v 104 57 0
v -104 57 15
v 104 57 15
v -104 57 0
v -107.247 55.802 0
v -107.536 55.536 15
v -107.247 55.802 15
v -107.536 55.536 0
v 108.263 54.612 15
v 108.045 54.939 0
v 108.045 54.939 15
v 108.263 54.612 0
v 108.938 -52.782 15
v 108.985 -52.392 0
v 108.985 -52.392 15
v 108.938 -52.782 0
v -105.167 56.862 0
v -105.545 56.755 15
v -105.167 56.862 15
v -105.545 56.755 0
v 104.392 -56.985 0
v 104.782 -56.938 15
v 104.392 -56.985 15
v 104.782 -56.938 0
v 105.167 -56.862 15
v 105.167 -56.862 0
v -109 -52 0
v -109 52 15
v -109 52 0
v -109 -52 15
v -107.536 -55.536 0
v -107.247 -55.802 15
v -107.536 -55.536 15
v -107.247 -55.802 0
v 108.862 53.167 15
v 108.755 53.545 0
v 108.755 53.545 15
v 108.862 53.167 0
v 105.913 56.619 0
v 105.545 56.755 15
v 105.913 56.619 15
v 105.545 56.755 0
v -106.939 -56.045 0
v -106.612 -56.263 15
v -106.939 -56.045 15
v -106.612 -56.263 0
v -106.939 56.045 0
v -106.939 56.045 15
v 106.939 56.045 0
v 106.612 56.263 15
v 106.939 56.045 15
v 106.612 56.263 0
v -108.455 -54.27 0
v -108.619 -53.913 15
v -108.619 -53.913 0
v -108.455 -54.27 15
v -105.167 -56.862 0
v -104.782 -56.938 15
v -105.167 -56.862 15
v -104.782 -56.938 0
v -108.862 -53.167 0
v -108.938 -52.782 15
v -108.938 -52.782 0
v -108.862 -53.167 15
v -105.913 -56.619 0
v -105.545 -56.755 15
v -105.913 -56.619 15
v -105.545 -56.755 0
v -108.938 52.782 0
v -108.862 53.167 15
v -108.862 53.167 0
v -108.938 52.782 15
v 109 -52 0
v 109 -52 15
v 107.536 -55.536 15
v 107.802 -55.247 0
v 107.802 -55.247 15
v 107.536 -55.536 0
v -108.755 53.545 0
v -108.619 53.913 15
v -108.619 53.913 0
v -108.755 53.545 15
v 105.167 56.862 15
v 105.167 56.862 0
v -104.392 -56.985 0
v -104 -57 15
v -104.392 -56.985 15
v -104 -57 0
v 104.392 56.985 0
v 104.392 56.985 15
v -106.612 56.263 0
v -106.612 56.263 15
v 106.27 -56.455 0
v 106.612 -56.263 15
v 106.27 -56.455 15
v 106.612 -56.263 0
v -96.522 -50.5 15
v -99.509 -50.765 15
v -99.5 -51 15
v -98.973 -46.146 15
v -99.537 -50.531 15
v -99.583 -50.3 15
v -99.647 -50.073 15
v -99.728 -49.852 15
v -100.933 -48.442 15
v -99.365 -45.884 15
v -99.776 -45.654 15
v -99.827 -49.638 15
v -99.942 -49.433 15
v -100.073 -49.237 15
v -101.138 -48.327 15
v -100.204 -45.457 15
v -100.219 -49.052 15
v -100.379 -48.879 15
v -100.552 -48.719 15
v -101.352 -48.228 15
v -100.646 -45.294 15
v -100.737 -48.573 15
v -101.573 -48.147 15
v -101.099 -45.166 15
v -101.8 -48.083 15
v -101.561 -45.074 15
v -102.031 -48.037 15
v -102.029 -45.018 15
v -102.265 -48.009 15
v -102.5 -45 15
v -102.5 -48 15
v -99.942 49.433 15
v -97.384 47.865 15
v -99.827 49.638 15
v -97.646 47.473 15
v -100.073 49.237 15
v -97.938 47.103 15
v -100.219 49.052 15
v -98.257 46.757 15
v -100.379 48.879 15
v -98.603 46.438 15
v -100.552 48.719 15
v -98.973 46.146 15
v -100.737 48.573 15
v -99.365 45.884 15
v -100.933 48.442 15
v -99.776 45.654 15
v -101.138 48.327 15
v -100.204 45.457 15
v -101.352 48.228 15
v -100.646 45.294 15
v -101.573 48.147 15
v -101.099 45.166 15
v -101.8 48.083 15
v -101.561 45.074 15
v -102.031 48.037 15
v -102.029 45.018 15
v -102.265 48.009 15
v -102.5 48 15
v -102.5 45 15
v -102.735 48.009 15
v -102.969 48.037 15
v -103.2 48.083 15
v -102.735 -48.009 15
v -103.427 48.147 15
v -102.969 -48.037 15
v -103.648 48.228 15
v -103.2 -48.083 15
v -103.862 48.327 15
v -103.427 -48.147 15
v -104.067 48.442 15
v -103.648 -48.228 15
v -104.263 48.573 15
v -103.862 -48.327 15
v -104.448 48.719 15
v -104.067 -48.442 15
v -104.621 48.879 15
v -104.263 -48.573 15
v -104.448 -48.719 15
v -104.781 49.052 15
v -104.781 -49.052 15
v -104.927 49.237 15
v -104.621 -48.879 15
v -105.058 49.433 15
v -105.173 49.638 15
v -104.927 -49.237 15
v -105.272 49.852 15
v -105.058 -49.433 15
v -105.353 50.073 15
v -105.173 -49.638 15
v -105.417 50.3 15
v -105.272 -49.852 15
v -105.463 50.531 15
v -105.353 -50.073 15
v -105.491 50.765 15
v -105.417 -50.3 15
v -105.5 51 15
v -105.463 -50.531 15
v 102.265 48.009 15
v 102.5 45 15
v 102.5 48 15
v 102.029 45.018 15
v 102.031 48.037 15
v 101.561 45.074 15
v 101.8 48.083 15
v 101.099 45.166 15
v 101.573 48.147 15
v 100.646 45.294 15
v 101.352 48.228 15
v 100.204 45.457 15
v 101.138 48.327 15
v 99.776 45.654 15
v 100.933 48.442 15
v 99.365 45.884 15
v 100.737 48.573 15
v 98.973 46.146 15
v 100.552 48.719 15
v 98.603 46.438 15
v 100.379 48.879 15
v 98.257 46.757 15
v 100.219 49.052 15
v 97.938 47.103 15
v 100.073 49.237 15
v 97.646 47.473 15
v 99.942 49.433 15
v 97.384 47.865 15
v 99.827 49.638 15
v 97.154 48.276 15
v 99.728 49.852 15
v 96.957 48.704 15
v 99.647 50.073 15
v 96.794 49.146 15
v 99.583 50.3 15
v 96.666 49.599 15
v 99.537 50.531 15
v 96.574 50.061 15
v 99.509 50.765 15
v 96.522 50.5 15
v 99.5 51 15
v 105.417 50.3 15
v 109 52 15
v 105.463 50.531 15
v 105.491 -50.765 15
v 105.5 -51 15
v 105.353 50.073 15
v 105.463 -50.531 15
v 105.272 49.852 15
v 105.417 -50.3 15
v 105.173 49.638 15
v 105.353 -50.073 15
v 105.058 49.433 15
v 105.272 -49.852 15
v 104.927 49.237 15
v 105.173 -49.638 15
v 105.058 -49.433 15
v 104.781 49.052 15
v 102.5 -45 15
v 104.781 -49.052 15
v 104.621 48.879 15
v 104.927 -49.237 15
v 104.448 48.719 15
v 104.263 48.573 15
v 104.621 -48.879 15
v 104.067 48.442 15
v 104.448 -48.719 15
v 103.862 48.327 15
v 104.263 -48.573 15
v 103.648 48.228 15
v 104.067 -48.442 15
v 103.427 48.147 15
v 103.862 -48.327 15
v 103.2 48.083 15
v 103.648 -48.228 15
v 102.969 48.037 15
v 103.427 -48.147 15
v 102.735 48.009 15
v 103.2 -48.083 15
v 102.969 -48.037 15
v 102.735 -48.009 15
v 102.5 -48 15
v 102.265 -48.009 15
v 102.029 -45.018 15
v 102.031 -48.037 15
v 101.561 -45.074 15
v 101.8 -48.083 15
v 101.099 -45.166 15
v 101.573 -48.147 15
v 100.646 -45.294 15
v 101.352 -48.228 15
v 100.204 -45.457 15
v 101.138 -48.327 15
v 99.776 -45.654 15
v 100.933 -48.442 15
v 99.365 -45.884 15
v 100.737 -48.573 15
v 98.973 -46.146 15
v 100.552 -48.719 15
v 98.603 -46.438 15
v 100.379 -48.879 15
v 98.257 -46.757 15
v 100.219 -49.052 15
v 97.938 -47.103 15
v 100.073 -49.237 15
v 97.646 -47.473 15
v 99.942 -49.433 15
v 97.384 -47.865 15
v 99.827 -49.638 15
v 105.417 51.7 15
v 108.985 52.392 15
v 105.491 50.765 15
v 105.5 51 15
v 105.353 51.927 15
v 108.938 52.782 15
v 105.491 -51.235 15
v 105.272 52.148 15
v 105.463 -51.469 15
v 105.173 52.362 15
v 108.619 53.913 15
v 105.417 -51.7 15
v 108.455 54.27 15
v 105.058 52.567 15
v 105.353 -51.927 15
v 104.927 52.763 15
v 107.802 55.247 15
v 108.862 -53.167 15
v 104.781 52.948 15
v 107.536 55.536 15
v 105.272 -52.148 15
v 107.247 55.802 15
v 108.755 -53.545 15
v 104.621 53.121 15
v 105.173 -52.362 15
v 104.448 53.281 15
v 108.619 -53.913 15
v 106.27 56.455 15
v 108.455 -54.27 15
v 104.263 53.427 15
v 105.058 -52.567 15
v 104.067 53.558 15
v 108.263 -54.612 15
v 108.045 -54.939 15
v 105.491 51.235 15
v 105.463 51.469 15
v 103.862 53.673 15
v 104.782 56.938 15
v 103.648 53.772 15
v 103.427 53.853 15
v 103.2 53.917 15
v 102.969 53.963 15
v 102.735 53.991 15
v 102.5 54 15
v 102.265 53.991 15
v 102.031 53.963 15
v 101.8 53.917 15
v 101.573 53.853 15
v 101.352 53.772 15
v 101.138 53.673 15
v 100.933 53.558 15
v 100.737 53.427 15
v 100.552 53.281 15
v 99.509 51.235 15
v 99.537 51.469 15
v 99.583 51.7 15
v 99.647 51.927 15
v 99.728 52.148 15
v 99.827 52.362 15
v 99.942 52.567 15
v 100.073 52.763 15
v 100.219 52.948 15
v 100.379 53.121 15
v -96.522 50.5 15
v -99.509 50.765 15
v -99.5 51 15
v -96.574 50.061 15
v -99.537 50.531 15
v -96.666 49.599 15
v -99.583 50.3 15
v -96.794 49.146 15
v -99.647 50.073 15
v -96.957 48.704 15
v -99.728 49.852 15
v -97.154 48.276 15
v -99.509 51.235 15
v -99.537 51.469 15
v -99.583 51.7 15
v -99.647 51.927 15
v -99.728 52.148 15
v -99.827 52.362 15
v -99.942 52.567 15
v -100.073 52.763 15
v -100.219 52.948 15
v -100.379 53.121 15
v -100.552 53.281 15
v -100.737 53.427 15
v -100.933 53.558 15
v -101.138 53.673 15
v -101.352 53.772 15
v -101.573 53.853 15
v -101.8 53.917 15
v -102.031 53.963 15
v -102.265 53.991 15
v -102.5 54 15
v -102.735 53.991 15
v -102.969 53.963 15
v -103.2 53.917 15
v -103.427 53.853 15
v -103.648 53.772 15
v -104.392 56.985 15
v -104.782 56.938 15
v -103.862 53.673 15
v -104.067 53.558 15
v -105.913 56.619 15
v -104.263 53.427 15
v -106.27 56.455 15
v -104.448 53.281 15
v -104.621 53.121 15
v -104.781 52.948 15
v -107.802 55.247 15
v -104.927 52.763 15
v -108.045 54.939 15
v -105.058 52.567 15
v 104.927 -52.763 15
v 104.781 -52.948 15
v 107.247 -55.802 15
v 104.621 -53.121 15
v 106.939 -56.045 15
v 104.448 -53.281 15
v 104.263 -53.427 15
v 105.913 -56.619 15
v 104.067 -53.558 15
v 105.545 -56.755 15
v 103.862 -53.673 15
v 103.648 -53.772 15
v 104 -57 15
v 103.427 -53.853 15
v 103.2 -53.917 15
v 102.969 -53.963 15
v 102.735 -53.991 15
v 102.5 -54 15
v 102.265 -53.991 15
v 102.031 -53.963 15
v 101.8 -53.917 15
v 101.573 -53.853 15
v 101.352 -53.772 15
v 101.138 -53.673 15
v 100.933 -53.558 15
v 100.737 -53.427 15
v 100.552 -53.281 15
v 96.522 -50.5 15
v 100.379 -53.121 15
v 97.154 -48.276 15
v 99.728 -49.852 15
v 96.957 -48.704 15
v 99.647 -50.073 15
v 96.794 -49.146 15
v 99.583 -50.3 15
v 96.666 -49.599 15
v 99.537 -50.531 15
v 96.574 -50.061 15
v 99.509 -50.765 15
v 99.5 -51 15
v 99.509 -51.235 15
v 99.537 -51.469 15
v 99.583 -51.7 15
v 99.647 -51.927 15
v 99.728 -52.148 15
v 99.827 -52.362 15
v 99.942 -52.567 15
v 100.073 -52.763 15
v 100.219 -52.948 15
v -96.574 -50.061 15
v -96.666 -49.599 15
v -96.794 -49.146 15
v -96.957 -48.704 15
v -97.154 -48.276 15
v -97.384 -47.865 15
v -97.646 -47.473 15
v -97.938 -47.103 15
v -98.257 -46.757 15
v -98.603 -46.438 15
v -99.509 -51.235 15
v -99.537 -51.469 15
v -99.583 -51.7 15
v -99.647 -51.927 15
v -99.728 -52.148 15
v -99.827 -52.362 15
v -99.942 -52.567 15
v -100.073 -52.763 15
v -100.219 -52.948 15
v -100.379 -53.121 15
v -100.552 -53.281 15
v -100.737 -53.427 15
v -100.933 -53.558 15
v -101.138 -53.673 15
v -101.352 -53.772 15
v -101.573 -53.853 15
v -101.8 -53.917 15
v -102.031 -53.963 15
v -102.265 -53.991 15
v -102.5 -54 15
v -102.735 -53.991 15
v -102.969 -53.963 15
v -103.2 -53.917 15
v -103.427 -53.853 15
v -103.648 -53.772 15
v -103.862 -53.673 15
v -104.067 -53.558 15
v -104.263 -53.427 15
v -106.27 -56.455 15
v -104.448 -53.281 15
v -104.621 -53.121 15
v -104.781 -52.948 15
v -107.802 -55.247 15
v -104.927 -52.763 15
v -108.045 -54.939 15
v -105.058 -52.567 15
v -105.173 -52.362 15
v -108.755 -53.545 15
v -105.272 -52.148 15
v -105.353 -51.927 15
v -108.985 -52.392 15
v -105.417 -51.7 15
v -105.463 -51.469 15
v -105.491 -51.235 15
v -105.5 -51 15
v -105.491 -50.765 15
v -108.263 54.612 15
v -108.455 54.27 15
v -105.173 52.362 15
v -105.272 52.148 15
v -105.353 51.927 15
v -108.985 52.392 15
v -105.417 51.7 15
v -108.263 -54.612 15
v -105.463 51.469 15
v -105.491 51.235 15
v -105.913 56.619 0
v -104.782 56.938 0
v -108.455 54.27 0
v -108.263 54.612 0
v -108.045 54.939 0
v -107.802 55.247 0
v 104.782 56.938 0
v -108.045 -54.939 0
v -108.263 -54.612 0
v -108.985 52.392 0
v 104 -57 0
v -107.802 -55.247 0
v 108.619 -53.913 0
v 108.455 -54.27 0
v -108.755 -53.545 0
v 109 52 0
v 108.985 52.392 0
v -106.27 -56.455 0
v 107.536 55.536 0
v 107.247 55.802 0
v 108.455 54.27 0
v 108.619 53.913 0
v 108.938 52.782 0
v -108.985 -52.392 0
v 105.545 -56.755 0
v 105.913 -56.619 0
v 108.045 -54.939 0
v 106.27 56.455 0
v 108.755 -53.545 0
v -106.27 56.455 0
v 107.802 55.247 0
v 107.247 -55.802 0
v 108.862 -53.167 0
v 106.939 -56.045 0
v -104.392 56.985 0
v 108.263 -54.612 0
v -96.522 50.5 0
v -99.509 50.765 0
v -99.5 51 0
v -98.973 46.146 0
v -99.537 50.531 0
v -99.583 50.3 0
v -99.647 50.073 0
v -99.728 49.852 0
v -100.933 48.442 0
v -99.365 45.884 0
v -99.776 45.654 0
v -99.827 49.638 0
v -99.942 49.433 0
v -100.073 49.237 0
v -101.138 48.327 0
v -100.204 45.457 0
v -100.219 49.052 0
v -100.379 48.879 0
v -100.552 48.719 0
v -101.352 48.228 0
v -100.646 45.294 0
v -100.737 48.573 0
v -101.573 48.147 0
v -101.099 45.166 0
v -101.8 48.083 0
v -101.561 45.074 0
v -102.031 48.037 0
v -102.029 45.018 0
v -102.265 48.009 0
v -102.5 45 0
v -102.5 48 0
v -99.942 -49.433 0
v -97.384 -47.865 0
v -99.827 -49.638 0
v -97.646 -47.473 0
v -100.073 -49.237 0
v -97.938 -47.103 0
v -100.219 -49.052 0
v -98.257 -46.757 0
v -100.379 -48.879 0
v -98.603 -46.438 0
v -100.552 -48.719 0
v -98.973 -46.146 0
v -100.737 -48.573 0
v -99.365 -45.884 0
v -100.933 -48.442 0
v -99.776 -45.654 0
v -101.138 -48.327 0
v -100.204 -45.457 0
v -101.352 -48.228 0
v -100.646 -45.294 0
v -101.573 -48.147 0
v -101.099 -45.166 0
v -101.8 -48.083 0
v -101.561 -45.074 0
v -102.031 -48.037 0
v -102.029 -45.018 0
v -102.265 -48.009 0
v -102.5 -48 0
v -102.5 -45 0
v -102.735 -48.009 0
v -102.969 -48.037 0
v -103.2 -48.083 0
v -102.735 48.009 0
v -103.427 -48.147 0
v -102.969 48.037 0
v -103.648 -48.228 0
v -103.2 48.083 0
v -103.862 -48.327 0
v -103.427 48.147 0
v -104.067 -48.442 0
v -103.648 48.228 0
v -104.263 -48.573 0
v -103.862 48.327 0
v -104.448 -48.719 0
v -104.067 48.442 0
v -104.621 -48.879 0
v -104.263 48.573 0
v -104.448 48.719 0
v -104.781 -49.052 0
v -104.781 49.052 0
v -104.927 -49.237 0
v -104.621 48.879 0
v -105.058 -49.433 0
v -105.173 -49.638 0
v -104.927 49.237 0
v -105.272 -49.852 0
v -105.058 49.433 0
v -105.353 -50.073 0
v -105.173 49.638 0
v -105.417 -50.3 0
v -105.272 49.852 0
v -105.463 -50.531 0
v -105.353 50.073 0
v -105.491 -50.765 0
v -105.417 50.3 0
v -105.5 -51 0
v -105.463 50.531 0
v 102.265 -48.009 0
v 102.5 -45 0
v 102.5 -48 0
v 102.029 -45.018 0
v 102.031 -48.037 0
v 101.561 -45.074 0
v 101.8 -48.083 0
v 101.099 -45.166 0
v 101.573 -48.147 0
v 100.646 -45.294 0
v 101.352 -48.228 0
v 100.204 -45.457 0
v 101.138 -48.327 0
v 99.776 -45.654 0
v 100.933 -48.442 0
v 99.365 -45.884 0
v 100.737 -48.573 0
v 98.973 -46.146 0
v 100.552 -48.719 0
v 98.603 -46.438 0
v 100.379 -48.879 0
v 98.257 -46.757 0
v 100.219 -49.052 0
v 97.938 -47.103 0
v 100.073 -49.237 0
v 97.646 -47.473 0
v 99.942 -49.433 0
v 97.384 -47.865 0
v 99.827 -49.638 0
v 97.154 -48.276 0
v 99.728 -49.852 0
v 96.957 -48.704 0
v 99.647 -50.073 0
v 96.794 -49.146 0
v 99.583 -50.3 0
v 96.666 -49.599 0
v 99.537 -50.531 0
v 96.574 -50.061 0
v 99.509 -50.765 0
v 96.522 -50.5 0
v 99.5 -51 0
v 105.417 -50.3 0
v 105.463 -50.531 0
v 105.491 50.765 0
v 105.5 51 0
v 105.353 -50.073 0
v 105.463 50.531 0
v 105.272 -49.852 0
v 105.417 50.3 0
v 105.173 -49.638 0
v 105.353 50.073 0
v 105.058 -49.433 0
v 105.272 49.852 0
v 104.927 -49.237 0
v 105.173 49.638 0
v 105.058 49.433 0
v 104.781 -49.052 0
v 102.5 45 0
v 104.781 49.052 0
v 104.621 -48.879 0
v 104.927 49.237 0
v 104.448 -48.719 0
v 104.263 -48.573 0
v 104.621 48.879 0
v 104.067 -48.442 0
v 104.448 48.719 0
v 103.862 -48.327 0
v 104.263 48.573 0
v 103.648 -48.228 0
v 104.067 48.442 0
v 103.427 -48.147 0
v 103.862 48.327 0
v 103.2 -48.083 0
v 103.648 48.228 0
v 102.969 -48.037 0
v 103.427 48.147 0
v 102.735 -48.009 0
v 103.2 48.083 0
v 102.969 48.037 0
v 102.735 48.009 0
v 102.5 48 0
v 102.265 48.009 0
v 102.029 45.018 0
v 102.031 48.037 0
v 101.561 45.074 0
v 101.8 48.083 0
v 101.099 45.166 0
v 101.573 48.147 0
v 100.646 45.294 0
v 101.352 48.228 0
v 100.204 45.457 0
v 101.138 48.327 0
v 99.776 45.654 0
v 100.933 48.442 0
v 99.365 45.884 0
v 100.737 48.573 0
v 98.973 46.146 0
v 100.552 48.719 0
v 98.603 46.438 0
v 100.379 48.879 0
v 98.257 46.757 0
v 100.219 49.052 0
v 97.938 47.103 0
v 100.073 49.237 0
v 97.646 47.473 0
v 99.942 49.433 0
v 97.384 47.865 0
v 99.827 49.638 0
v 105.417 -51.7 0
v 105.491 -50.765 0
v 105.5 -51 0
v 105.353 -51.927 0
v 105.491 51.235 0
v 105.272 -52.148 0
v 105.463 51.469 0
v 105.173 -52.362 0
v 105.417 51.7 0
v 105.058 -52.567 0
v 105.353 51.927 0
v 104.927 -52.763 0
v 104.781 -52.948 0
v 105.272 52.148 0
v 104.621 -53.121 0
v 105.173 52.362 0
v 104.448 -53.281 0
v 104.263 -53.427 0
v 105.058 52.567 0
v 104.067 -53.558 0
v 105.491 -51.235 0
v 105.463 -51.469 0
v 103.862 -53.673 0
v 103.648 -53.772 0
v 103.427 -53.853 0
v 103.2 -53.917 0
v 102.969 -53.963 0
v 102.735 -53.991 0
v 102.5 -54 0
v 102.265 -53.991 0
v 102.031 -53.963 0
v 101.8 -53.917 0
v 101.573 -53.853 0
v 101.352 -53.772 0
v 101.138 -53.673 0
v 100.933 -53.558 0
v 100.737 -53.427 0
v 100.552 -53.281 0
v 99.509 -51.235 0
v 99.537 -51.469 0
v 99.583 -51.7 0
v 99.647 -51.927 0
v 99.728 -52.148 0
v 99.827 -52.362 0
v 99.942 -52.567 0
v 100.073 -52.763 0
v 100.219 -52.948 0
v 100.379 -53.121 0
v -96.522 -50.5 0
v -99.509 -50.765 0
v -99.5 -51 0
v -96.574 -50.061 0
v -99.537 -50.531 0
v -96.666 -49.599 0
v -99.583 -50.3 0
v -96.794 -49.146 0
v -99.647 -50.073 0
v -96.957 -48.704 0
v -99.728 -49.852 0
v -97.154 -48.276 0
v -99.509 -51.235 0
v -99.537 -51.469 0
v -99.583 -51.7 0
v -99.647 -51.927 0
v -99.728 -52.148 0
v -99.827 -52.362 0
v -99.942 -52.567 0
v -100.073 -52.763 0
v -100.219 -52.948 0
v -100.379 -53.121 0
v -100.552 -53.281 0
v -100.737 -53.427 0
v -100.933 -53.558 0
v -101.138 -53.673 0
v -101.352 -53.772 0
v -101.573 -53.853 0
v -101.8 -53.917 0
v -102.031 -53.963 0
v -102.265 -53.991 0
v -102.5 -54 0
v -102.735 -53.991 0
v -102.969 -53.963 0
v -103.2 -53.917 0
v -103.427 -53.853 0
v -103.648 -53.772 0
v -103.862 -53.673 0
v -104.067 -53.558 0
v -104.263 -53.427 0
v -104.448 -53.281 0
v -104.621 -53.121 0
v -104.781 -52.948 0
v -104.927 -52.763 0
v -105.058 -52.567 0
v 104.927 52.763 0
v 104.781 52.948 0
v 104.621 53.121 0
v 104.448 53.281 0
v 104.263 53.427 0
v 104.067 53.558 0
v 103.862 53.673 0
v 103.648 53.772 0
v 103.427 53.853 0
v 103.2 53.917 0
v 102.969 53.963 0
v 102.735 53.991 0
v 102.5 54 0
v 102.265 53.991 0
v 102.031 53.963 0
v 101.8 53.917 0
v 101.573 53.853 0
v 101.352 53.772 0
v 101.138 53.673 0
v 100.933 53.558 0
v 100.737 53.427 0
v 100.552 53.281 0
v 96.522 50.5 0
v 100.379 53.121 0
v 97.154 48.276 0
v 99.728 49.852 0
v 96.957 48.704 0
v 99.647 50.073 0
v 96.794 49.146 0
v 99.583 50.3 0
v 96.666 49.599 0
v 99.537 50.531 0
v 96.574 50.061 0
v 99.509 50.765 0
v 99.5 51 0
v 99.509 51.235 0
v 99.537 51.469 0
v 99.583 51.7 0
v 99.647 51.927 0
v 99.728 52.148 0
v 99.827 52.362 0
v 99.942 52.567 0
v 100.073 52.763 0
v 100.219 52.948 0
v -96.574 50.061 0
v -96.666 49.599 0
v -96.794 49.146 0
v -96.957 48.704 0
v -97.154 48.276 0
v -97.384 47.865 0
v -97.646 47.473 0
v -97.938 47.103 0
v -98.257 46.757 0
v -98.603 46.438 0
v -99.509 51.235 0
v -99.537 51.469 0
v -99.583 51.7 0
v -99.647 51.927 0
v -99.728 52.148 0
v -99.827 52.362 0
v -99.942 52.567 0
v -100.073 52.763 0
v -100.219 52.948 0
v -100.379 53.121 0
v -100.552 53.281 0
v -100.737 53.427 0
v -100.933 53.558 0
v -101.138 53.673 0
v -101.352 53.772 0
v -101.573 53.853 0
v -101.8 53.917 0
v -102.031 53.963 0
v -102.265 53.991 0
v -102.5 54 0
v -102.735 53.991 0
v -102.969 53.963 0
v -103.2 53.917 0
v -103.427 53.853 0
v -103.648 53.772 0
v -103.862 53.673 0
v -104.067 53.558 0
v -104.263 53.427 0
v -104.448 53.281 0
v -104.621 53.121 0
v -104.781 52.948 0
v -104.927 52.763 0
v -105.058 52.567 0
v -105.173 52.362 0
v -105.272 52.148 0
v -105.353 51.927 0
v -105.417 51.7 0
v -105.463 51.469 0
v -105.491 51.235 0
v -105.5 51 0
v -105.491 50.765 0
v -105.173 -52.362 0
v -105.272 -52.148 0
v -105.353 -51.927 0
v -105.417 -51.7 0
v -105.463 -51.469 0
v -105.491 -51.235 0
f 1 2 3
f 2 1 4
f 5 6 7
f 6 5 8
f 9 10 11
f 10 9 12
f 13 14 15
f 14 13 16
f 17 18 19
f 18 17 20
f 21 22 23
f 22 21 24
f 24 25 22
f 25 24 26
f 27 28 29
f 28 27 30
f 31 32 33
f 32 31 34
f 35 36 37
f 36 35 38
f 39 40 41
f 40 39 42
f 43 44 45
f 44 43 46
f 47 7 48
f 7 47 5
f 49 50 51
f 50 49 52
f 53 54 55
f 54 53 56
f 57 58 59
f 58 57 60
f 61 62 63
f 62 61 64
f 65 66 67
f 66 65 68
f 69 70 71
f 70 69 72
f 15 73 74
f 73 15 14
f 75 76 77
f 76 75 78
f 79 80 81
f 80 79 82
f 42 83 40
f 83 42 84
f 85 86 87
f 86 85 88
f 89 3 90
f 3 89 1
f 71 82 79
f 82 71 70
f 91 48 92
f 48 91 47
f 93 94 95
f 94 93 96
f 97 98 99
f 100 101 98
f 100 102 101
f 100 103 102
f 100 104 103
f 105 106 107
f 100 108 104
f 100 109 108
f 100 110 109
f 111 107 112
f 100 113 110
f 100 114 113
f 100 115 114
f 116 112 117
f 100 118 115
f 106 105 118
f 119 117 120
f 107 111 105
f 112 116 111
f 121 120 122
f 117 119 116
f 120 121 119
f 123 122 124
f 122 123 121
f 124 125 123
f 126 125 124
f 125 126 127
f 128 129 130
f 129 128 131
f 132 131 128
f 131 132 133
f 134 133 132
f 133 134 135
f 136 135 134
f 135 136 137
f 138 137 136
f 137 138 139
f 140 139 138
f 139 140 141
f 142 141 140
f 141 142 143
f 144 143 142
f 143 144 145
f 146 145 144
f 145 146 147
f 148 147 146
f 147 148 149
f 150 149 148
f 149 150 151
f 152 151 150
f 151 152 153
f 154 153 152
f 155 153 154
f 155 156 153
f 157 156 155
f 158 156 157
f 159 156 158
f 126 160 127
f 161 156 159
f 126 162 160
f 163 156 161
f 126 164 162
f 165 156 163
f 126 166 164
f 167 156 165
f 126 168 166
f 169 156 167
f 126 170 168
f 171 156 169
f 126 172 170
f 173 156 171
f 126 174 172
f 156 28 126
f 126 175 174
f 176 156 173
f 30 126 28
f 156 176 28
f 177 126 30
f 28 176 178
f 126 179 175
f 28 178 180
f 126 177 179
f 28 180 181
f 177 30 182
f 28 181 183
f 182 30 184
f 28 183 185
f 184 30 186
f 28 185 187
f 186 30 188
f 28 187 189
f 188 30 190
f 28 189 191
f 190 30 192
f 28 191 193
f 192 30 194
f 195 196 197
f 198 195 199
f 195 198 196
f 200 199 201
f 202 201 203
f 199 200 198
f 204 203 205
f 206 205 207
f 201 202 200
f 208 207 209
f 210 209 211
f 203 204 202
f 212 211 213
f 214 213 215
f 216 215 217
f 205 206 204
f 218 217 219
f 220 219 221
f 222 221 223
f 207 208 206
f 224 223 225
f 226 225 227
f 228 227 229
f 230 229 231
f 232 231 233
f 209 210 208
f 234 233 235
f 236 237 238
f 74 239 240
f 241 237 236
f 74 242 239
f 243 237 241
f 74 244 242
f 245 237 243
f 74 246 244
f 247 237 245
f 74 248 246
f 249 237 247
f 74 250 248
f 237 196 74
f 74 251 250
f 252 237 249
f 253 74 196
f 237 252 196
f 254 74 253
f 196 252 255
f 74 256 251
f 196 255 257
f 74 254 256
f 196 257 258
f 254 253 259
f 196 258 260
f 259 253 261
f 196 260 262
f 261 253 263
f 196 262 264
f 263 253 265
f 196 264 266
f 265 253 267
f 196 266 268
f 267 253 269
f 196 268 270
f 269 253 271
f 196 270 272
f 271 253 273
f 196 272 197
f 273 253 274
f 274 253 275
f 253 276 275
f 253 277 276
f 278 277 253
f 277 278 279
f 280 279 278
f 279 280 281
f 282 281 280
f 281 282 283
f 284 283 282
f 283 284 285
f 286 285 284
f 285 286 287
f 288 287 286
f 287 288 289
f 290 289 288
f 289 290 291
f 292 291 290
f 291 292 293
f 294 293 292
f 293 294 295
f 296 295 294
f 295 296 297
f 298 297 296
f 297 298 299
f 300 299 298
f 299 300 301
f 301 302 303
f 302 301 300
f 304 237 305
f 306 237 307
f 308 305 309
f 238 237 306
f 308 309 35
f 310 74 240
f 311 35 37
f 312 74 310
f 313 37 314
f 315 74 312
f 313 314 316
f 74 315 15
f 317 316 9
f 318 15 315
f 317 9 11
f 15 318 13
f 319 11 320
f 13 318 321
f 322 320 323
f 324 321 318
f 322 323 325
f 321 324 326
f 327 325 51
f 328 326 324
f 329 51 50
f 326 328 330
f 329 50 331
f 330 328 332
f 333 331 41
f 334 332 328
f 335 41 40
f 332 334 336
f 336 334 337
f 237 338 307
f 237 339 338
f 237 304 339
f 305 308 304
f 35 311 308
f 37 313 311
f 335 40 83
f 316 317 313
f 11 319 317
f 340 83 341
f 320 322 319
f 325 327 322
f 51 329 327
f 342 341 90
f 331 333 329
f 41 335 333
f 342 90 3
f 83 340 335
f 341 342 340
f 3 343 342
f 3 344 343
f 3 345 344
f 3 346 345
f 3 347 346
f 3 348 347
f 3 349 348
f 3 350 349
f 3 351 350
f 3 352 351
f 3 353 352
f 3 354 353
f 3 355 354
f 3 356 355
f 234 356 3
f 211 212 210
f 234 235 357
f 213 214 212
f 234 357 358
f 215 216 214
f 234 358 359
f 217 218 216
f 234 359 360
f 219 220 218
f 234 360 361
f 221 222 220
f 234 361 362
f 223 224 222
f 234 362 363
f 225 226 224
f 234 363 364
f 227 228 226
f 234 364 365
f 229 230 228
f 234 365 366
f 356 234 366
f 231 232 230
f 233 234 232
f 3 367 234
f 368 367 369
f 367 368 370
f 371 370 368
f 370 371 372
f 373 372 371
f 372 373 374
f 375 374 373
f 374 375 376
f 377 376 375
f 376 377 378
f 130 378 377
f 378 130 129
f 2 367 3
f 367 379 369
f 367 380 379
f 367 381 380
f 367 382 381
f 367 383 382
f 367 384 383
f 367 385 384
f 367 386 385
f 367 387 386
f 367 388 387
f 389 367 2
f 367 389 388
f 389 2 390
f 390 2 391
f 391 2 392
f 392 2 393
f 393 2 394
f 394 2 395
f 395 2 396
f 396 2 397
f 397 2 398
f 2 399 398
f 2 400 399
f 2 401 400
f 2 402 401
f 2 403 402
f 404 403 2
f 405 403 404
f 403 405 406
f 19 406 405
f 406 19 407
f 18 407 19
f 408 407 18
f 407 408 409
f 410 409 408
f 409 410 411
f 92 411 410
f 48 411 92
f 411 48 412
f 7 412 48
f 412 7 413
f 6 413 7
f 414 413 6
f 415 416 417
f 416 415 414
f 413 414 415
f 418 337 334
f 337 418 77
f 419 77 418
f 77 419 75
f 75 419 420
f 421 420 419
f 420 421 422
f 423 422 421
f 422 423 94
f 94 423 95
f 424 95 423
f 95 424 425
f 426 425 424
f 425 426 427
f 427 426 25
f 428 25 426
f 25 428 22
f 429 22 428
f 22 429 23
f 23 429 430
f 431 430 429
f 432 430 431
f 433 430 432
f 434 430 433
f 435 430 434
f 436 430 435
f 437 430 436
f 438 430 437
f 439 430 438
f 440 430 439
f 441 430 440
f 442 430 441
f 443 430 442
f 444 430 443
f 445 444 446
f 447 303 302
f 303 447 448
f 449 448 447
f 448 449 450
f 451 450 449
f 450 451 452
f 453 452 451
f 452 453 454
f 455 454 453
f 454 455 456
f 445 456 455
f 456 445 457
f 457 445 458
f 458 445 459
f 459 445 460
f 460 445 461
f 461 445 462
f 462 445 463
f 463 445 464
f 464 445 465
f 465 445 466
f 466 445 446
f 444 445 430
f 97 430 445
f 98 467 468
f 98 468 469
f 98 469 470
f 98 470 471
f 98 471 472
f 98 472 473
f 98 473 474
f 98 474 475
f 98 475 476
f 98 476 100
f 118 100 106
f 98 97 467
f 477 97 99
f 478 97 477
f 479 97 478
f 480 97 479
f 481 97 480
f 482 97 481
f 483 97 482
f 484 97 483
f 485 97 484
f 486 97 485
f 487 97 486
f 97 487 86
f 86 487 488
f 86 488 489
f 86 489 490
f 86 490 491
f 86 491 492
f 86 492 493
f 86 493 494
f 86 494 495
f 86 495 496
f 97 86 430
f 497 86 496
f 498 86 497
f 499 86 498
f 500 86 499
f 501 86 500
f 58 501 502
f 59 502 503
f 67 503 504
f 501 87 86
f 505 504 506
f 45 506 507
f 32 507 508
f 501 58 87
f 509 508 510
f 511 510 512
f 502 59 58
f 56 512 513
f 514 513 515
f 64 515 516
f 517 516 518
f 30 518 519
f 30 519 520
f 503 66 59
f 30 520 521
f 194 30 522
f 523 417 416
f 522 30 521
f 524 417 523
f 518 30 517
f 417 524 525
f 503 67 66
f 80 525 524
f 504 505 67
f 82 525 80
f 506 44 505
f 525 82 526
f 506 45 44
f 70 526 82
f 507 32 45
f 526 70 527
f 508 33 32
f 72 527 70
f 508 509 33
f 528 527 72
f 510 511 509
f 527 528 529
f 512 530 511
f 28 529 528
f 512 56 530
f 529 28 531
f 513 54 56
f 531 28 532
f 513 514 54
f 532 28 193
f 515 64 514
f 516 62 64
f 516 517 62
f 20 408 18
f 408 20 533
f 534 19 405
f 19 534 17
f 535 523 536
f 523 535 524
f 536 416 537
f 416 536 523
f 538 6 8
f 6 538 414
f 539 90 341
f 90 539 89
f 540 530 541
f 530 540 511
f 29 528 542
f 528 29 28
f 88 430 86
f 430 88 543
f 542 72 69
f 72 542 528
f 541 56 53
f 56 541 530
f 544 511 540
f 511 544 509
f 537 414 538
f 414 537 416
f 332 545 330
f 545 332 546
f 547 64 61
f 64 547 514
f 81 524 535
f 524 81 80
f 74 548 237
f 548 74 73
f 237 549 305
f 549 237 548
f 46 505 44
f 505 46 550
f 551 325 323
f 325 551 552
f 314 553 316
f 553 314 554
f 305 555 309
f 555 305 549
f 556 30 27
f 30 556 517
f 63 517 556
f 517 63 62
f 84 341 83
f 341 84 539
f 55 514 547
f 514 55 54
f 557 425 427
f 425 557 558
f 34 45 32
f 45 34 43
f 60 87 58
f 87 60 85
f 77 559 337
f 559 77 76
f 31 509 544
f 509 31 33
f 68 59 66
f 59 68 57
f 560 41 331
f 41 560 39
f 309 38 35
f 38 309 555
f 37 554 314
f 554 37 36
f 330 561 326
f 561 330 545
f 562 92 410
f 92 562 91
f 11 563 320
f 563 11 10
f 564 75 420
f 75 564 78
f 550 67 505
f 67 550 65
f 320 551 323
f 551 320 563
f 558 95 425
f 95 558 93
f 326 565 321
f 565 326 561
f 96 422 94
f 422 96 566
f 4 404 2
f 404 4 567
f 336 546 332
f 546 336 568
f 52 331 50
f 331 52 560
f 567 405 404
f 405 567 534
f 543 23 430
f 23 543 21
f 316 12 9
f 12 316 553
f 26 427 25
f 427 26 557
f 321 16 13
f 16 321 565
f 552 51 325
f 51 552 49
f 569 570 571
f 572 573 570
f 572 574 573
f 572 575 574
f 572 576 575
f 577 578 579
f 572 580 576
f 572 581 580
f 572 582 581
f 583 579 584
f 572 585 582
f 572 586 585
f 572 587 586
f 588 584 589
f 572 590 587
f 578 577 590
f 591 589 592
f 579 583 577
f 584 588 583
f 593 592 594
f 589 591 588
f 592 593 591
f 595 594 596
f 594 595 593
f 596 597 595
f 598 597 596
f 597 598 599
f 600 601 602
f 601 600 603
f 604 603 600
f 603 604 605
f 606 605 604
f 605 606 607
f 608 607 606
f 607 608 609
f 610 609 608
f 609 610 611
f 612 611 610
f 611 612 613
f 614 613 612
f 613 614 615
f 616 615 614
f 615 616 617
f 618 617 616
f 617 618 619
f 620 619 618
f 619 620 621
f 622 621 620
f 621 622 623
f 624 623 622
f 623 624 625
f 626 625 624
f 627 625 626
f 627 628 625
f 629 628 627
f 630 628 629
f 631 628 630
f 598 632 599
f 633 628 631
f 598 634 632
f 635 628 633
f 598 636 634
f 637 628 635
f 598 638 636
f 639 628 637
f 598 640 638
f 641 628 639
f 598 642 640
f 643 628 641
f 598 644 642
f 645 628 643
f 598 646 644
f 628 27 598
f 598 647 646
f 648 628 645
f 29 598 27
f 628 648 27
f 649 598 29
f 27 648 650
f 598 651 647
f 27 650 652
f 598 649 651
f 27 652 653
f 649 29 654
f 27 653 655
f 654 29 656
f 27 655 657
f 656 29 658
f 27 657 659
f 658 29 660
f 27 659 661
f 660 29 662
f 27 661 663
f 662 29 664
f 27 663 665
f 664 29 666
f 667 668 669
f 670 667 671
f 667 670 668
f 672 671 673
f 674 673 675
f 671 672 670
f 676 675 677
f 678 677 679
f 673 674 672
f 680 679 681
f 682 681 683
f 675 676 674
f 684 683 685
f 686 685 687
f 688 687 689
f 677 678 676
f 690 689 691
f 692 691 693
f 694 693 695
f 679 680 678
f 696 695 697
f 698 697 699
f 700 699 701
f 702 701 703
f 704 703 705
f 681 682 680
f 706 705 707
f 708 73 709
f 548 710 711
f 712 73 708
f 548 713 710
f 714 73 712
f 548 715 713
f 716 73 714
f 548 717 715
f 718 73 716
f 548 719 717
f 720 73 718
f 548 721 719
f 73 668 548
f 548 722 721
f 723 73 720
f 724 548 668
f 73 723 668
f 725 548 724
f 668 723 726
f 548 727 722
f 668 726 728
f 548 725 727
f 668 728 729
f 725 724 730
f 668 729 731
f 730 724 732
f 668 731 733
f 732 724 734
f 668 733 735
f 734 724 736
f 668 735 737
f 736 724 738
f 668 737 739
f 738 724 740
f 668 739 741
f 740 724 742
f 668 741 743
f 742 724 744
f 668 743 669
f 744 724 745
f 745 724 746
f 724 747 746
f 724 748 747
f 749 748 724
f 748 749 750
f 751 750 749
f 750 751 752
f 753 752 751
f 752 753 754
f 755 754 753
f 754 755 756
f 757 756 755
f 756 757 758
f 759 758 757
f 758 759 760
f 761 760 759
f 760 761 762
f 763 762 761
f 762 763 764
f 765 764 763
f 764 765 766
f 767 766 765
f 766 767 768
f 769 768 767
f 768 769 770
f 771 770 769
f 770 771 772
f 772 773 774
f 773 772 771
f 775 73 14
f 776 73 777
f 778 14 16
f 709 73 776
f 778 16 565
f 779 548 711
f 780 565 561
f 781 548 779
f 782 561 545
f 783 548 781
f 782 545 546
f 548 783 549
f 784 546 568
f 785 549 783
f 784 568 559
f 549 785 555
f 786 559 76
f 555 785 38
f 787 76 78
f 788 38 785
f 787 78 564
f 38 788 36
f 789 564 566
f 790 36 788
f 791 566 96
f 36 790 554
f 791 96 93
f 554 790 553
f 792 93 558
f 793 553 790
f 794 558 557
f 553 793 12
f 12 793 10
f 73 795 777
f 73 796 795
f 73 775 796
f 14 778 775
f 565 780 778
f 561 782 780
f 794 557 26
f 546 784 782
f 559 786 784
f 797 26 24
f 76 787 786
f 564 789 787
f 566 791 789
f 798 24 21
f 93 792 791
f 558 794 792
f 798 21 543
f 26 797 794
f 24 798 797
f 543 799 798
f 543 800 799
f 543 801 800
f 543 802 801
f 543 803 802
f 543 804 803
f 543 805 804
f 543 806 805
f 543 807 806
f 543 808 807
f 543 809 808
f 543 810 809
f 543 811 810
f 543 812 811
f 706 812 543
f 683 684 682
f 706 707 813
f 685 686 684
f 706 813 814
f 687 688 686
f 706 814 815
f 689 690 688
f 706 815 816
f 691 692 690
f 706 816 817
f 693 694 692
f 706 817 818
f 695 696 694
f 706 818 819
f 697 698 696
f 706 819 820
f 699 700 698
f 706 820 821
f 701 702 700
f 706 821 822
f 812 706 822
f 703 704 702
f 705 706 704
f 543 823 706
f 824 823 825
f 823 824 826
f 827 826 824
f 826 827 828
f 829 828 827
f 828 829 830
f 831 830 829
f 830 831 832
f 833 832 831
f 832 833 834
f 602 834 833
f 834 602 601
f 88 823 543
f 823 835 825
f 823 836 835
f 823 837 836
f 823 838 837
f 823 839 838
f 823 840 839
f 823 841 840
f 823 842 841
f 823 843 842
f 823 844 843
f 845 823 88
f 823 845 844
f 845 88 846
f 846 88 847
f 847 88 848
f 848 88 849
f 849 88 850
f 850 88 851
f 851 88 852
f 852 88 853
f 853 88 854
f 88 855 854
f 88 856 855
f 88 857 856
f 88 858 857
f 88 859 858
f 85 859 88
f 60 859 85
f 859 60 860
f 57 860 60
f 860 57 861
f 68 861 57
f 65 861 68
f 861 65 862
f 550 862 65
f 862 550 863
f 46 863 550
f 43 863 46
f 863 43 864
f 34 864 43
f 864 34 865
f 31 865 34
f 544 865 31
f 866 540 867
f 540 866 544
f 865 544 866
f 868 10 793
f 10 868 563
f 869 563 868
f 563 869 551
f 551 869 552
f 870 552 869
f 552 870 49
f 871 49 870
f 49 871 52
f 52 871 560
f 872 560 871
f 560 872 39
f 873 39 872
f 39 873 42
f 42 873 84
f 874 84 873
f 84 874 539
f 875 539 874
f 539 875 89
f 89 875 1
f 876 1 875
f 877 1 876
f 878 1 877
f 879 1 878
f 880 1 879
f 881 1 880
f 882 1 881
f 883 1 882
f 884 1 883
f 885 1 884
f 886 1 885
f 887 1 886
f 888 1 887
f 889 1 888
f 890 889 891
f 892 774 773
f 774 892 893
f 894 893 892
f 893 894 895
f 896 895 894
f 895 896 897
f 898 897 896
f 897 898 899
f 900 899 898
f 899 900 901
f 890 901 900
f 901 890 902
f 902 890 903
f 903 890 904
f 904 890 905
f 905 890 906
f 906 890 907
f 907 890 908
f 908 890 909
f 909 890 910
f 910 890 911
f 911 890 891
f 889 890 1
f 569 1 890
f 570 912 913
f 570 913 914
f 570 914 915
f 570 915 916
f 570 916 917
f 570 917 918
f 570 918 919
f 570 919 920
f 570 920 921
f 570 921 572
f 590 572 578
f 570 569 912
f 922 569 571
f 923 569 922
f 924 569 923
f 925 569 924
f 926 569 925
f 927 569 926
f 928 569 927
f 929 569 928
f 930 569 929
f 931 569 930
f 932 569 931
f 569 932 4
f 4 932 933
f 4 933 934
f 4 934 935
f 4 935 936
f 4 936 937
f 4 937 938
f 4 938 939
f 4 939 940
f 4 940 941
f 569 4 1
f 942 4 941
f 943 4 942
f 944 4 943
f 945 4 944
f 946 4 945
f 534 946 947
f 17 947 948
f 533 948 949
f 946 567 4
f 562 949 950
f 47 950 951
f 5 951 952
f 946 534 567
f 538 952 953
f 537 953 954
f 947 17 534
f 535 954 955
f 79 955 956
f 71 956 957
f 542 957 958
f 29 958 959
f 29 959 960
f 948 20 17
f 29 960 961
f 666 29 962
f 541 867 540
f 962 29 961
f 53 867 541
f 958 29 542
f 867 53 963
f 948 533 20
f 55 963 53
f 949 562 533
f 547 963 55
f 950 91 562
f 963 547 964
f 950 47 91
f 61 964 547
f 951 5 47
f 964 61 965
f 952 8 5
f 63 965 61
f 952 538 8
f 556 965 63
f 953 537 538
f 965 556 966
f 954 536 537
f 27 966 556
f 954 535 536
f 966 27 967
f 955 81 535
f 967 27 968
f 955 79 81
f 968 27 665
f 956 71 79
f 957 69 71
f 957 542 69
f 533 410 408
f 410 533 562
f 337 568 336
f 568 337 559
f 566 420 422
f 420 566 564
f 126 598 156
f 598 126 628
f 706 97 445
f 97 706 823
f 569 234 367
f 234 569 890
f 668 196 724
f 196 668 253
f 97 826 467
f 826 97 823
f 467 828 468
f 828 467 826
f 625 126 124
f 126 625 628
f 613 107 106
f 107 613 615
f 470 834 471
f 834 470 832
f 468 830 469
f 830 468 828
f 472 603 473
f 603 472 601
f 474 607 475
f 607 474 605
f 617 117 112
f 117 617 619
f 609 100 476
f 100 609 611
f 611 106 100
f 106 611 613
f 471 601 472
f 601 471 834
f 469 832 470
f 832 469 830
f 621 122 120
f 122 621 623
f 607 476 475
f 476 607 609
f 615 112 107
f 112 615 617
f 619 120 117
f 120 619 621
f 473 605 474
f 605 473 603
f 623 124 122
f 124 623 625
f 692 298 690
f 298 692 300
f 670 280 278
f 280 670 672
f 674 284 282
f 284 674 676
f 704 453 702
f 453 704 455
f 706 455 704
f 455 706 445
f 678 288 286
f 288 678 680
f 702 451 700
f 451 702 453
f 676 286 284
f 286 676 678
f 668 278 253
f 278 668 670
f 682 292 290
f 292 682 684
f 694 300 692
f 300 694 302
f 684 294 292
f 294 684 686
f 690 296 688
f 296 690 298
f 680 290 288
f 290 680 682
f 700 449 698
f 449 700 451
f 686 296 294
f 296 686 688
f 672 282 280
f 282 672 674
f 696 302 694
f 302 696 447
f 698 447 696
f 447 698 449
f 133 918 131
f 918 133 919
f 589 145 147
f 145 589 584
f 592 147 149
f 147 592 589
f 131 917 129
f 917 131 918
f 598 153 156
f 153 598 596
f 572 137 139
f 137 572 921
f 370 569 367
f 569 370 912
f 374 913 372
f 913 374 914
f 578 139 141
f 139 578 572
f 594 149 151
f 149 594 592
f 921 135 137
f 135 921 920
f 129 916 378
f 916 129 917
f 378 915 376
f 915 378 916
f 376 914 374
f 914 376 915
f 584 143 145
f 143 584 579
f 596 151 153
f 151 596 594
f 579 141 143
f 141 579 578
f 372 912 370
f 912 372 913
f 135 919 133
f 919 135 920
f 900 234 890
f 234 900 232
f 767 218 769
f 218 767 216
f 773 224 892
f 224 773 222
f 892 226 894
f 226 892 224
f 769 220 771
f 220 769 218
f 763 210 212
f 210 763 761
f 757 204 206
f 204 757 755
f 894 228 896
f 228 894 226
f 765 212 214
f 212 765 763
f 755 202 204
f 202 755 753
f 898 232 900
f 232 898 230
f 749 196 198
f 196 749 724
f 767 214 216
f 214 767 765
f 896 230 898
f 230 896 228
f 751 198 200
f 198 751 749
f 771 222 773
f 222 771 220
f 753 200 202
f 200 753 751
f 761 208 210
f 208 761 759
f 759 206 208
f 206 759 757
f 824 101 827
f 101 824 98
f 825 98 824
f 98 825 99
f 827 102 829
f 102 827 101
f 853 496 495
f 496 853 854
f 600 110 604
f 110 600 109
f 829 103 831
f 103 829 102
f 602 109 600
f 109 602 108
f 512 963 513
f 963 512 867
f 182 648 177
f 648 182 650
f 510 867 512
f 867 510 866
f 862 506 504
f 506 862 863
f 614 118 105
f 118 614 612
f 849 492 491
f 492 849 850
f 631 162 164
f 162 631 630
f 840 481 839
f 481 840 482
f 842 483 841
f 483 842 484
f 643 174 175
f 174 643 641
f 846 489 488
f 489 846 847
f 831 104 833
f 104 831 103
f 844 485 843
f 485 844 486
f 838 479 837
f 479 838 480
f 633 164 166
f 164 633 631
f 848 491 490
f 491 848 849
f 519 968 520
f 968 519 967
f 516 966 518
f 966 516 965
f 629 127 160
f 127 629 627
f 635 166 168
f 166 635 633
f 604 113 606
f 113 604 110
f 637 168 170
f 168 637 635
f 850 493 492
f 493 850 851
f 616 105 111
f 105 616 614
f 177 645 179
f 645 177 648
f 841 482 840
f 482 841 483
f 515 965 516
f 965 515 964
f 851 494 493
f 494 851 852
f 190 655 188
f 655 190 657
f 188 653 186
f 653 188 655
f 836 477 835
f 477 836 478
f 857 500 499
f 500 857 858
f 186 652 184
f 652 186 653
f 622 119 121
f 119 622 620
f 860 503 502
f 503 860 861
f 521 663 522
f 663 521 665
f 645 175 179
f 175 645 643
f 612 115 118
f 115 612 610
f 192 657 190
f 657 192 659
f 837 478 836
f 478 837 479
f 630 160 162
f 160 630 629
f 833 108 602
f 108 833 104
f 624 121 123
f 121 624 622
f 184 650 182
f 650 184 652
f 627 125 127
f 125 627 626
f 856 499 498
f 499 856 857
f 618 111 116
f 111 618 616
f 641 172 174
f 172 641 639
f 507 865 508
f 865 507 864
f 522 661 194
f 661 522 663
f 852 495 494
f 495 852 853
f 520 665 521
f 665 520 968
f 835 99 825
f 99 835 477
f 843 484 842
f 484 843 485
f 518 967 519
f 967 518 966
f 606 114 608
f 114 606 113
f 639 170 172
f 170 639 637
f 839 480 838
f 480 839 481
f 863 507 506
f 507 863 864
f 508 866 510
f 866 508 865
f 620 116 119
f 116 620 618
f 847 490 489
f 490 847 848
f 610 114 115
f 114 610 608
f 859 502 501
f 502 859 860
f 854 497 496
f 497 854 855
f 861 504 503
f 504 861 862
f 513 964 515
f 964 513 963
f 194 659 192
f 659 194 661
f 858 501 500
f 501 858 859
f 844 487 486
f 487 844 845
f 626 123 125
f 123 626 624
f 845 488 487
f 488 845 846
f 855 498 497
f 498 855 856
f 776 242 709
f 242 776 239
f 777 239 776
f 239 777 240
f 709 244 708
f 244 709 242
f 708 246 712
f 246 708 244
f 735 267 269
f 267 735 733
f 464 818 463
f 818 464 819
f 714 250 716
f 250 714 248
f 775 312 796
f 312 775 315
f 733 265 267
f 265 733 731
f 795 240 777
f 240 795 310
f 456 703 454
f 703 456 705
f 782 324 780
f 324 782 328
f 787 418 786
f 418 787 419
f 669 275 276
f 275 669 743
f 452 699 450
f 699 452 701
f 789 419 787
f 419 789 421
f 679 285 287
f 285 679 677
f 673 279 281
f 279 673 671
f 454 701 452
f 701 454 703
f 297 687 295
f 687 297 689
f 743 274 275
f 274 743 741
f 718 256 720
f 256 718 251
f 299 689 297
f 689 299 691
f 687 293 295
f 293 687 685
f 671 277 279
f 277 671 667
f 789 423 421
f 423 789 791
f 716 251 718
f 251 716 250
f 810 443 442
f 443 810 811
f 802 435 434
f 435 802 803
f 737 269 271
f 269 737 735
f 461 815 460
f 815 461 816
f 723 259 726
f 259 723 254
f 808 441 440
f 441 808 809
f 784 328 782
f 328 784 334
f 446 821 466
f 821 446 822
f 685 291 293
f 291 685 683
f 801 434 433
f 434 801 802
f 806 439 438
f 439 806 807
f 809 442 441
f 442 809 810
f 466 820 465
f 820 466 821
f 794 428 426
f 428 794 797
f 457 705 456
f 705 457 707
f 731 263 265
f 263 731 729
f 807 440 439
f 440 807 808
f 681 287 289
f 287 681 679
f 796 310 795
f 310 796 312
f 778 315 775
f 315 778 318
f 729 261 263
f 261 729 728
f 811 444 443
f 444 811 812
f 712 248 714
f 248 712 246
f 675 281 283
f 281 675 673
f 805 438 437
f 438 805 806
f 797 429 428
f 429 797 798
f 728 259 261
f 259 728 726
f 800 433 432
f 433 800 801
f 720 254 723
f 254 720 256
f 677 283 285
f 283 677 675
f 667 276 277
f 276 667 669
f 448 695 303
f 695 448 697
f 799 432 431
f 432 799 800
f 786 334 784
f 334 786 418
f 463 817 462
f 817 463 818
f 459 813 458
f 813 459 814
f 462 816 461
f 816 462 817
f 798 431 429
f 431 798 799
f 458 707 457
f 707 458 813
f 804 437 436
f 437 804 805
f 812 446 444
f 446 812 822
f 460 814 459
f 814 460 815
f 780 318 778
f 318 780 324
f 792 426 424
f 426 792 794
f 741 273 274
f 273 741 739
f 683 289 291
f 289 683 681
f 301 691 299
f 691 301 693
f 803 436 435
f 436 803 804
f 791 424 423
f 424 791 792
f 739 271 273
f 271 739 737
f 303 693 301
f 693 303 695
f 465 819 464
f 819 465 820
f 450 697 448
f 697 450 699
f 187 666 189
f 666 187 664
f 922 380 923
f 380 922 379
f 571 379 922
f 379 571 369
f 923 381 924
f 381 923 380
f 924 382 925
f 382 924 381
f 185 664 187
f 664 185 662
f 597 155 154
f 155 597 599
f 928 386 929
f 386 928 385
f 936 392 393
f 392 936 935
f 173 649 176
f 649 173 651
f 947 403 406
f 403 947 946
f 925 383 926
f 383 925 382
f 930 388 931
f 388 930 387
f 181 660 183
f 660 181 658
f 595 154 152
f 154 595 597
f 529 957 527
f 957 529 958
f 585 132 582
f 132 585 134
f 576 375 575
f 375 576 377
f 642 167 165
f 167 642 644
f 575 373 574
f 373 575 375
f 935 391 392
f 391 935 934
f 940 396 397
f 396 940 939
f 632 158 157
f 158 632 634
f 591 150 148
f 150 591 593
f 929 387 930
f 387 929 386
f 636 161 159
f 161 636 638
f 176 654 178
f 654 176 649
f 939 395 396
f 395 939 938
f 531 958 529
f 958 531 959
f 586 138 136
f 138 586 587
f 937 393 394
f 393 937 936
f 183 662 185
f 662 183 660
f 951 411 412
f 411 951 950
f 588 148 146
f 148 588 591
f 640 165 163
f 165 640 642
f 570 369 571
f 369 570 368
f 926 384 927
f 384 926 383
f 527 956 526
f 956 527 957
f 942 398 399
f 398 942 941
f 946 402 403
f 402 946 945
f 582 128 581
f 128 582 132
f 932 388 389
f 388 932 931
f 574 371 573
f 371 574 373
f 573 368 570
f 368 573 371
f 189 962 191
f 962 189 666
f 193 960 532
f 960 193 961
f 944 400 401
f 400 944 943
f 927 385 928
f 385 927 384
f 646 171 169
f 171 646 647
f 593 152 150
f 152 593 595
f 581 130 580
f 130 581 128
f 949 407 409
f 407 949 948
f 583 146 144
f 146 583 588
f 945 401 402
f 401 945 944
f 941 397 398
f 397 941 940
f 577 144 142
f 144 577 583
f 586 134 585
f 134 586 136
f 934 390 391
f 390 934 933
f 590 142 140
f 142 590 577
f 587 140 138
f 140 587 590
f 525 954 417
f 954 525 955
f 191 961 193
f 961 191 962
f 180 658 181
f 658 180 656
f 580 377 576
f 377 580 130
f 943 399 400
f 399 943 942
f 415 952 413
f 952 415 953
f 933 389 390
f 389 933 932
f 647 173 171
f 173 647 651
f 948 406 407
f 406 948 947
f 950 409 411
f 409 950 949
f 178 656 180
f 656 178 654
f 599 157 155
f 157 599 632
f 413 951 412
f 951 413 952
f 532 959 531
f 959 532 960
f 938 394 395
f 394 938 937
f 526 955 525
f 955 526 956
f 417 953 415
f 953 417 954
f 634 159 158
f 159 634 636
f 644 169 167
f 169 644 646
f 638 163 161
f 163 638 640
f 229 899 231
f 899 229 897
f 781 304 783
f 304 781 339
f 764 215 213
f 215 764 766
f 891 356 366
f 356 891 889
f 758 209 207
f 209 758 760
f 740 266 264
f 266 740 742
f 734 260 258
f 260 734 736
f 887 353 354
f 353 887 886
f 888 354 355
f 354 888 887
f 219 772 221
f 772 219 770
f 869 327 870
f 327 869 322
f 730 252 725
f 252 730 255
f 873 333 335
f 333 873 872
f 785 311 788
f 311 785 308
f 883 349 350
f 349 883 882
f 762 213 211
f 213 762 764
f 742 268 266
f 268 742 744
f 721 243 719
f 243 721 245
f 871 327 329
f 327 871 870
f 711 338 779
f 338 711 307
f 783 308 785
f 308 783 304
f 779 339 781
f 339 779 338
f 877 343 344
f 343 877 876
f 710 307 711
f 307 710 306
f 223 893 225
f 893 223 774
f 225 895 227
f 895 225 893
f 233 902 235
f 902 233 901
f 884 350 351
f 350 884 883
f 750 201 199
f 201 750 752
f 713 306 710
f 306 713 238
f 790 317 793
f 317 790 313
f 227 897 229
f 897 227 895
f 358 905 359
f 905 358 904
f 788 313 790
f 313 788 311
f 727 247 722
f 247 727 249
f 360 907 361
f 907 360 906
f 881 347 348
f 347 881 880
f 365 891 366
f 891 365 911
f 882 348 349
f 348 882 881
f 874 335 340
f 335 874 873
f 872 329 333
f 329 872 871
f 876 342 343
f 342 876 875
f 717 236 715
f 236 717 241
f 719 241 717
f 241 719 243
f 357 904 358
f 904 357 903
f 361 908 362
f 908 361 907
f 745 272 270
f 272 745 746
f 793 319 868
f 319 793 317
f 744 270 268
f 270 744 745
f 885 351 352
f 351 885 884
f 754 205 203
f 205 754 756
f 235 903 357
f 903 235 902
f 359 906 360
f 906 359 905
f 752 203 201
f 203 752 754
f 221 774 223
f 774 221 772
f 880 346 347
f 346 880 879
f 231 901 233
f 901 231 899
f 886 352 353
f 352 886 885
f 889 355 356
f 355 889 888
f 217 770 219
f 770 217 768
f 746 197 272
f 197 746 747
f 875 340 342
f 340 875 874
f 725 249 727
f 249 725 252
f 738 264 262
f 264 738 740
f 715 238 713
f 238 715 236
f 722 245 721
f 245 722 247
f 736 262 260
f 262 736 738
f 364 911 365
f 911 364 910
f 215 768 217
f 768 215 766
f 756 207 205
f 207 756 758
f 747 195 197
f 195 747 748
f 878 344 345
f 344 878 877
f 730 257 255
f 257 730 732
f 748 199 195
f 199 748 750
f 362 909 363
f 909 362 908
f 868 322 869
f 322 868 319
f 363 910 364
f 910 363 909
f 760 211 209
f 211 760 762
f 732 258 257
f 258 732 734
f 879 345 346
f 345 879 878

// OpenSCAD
// PETG-CF, 15% Fill, No Support

plateDimensions             = [218, 114, 15];
plateHoleLocations          = [205/2, 102/2];
surroundThickness           = 6.5;
boltHoleDiameter            = 6.0;
cornerRadius                = 5.0;
cornerReinforcementDiameter = 12.0;

manifoldCorrection          = 0.01;
manifoldCorrection2         = manifoldCorrection * 2;
$fn                         = 80;



caseExtension();



module caseExtension()
{
    difference()
    {
        union()
        {
            difference()
            {
                roundedCube(plateDimensions, cornerRadius);
            
                translate( [0, 0, -manifoldCorrection] )
                    roundedCube( plateDimensions - [surroundThickness * 2, surroundThickness * 2, -manifoldCorrection2], cornerRadius);
            }

            for ( pos = [
                        [-plateHoleLocations[0], -plateHoleLocations[1]],
                        [ plateHoleLocations[0], -plateHoleLocations[1]],
                        [-plateHoleLocations[0],  plateHoleLocations[1]],
                        [ plateHoleLocations[0],  plateHoleLocations[1]]
                    ] )
                translate( [pos[0], pos[1], 0] )
                    cylinder(d = cornerReinforcementDiameter, h = plateDimensions[2]);
        }
        
        for ( pos = [
                    [-plateHoleLocations[0], -plateHoleLocations[1]],
                    [ plateHoleLocations[0], -plateHoleLocations[1]],
                    [-plateHoleLocations[0],  plateHoleLocations[1]],
                    [ plateHoleLocations[0],  plateHoleLocations[1]]
                ] )
            translate( [pos[0], pos[1], -manifoldCorrection] )
                cylinder(d = boltHoleDiameter, h = plateDimensions[2] + manifoldCorrection2);
    }
}



module roundedCube(dimensions, radius)
{
    xyDelta = [dimensions[0]/2 - cornerRadius, dimensions[1]/2 - cornerRadius];
    
    hull()
        for ( pos = [
                    [-xyDelta[0], -xyDelta[1]],
                    [ xyDelta[0], -xyDelta[1]],
                    [-xyDelta[0],  xyDelta[1]],
                    [ xyDelta[0],  xyDelta[1]]
                ] )
            translate( [pos[0], pos[1], 0] )
                cylinder(r = cornerRadius, h = dimensions[2]);
}
